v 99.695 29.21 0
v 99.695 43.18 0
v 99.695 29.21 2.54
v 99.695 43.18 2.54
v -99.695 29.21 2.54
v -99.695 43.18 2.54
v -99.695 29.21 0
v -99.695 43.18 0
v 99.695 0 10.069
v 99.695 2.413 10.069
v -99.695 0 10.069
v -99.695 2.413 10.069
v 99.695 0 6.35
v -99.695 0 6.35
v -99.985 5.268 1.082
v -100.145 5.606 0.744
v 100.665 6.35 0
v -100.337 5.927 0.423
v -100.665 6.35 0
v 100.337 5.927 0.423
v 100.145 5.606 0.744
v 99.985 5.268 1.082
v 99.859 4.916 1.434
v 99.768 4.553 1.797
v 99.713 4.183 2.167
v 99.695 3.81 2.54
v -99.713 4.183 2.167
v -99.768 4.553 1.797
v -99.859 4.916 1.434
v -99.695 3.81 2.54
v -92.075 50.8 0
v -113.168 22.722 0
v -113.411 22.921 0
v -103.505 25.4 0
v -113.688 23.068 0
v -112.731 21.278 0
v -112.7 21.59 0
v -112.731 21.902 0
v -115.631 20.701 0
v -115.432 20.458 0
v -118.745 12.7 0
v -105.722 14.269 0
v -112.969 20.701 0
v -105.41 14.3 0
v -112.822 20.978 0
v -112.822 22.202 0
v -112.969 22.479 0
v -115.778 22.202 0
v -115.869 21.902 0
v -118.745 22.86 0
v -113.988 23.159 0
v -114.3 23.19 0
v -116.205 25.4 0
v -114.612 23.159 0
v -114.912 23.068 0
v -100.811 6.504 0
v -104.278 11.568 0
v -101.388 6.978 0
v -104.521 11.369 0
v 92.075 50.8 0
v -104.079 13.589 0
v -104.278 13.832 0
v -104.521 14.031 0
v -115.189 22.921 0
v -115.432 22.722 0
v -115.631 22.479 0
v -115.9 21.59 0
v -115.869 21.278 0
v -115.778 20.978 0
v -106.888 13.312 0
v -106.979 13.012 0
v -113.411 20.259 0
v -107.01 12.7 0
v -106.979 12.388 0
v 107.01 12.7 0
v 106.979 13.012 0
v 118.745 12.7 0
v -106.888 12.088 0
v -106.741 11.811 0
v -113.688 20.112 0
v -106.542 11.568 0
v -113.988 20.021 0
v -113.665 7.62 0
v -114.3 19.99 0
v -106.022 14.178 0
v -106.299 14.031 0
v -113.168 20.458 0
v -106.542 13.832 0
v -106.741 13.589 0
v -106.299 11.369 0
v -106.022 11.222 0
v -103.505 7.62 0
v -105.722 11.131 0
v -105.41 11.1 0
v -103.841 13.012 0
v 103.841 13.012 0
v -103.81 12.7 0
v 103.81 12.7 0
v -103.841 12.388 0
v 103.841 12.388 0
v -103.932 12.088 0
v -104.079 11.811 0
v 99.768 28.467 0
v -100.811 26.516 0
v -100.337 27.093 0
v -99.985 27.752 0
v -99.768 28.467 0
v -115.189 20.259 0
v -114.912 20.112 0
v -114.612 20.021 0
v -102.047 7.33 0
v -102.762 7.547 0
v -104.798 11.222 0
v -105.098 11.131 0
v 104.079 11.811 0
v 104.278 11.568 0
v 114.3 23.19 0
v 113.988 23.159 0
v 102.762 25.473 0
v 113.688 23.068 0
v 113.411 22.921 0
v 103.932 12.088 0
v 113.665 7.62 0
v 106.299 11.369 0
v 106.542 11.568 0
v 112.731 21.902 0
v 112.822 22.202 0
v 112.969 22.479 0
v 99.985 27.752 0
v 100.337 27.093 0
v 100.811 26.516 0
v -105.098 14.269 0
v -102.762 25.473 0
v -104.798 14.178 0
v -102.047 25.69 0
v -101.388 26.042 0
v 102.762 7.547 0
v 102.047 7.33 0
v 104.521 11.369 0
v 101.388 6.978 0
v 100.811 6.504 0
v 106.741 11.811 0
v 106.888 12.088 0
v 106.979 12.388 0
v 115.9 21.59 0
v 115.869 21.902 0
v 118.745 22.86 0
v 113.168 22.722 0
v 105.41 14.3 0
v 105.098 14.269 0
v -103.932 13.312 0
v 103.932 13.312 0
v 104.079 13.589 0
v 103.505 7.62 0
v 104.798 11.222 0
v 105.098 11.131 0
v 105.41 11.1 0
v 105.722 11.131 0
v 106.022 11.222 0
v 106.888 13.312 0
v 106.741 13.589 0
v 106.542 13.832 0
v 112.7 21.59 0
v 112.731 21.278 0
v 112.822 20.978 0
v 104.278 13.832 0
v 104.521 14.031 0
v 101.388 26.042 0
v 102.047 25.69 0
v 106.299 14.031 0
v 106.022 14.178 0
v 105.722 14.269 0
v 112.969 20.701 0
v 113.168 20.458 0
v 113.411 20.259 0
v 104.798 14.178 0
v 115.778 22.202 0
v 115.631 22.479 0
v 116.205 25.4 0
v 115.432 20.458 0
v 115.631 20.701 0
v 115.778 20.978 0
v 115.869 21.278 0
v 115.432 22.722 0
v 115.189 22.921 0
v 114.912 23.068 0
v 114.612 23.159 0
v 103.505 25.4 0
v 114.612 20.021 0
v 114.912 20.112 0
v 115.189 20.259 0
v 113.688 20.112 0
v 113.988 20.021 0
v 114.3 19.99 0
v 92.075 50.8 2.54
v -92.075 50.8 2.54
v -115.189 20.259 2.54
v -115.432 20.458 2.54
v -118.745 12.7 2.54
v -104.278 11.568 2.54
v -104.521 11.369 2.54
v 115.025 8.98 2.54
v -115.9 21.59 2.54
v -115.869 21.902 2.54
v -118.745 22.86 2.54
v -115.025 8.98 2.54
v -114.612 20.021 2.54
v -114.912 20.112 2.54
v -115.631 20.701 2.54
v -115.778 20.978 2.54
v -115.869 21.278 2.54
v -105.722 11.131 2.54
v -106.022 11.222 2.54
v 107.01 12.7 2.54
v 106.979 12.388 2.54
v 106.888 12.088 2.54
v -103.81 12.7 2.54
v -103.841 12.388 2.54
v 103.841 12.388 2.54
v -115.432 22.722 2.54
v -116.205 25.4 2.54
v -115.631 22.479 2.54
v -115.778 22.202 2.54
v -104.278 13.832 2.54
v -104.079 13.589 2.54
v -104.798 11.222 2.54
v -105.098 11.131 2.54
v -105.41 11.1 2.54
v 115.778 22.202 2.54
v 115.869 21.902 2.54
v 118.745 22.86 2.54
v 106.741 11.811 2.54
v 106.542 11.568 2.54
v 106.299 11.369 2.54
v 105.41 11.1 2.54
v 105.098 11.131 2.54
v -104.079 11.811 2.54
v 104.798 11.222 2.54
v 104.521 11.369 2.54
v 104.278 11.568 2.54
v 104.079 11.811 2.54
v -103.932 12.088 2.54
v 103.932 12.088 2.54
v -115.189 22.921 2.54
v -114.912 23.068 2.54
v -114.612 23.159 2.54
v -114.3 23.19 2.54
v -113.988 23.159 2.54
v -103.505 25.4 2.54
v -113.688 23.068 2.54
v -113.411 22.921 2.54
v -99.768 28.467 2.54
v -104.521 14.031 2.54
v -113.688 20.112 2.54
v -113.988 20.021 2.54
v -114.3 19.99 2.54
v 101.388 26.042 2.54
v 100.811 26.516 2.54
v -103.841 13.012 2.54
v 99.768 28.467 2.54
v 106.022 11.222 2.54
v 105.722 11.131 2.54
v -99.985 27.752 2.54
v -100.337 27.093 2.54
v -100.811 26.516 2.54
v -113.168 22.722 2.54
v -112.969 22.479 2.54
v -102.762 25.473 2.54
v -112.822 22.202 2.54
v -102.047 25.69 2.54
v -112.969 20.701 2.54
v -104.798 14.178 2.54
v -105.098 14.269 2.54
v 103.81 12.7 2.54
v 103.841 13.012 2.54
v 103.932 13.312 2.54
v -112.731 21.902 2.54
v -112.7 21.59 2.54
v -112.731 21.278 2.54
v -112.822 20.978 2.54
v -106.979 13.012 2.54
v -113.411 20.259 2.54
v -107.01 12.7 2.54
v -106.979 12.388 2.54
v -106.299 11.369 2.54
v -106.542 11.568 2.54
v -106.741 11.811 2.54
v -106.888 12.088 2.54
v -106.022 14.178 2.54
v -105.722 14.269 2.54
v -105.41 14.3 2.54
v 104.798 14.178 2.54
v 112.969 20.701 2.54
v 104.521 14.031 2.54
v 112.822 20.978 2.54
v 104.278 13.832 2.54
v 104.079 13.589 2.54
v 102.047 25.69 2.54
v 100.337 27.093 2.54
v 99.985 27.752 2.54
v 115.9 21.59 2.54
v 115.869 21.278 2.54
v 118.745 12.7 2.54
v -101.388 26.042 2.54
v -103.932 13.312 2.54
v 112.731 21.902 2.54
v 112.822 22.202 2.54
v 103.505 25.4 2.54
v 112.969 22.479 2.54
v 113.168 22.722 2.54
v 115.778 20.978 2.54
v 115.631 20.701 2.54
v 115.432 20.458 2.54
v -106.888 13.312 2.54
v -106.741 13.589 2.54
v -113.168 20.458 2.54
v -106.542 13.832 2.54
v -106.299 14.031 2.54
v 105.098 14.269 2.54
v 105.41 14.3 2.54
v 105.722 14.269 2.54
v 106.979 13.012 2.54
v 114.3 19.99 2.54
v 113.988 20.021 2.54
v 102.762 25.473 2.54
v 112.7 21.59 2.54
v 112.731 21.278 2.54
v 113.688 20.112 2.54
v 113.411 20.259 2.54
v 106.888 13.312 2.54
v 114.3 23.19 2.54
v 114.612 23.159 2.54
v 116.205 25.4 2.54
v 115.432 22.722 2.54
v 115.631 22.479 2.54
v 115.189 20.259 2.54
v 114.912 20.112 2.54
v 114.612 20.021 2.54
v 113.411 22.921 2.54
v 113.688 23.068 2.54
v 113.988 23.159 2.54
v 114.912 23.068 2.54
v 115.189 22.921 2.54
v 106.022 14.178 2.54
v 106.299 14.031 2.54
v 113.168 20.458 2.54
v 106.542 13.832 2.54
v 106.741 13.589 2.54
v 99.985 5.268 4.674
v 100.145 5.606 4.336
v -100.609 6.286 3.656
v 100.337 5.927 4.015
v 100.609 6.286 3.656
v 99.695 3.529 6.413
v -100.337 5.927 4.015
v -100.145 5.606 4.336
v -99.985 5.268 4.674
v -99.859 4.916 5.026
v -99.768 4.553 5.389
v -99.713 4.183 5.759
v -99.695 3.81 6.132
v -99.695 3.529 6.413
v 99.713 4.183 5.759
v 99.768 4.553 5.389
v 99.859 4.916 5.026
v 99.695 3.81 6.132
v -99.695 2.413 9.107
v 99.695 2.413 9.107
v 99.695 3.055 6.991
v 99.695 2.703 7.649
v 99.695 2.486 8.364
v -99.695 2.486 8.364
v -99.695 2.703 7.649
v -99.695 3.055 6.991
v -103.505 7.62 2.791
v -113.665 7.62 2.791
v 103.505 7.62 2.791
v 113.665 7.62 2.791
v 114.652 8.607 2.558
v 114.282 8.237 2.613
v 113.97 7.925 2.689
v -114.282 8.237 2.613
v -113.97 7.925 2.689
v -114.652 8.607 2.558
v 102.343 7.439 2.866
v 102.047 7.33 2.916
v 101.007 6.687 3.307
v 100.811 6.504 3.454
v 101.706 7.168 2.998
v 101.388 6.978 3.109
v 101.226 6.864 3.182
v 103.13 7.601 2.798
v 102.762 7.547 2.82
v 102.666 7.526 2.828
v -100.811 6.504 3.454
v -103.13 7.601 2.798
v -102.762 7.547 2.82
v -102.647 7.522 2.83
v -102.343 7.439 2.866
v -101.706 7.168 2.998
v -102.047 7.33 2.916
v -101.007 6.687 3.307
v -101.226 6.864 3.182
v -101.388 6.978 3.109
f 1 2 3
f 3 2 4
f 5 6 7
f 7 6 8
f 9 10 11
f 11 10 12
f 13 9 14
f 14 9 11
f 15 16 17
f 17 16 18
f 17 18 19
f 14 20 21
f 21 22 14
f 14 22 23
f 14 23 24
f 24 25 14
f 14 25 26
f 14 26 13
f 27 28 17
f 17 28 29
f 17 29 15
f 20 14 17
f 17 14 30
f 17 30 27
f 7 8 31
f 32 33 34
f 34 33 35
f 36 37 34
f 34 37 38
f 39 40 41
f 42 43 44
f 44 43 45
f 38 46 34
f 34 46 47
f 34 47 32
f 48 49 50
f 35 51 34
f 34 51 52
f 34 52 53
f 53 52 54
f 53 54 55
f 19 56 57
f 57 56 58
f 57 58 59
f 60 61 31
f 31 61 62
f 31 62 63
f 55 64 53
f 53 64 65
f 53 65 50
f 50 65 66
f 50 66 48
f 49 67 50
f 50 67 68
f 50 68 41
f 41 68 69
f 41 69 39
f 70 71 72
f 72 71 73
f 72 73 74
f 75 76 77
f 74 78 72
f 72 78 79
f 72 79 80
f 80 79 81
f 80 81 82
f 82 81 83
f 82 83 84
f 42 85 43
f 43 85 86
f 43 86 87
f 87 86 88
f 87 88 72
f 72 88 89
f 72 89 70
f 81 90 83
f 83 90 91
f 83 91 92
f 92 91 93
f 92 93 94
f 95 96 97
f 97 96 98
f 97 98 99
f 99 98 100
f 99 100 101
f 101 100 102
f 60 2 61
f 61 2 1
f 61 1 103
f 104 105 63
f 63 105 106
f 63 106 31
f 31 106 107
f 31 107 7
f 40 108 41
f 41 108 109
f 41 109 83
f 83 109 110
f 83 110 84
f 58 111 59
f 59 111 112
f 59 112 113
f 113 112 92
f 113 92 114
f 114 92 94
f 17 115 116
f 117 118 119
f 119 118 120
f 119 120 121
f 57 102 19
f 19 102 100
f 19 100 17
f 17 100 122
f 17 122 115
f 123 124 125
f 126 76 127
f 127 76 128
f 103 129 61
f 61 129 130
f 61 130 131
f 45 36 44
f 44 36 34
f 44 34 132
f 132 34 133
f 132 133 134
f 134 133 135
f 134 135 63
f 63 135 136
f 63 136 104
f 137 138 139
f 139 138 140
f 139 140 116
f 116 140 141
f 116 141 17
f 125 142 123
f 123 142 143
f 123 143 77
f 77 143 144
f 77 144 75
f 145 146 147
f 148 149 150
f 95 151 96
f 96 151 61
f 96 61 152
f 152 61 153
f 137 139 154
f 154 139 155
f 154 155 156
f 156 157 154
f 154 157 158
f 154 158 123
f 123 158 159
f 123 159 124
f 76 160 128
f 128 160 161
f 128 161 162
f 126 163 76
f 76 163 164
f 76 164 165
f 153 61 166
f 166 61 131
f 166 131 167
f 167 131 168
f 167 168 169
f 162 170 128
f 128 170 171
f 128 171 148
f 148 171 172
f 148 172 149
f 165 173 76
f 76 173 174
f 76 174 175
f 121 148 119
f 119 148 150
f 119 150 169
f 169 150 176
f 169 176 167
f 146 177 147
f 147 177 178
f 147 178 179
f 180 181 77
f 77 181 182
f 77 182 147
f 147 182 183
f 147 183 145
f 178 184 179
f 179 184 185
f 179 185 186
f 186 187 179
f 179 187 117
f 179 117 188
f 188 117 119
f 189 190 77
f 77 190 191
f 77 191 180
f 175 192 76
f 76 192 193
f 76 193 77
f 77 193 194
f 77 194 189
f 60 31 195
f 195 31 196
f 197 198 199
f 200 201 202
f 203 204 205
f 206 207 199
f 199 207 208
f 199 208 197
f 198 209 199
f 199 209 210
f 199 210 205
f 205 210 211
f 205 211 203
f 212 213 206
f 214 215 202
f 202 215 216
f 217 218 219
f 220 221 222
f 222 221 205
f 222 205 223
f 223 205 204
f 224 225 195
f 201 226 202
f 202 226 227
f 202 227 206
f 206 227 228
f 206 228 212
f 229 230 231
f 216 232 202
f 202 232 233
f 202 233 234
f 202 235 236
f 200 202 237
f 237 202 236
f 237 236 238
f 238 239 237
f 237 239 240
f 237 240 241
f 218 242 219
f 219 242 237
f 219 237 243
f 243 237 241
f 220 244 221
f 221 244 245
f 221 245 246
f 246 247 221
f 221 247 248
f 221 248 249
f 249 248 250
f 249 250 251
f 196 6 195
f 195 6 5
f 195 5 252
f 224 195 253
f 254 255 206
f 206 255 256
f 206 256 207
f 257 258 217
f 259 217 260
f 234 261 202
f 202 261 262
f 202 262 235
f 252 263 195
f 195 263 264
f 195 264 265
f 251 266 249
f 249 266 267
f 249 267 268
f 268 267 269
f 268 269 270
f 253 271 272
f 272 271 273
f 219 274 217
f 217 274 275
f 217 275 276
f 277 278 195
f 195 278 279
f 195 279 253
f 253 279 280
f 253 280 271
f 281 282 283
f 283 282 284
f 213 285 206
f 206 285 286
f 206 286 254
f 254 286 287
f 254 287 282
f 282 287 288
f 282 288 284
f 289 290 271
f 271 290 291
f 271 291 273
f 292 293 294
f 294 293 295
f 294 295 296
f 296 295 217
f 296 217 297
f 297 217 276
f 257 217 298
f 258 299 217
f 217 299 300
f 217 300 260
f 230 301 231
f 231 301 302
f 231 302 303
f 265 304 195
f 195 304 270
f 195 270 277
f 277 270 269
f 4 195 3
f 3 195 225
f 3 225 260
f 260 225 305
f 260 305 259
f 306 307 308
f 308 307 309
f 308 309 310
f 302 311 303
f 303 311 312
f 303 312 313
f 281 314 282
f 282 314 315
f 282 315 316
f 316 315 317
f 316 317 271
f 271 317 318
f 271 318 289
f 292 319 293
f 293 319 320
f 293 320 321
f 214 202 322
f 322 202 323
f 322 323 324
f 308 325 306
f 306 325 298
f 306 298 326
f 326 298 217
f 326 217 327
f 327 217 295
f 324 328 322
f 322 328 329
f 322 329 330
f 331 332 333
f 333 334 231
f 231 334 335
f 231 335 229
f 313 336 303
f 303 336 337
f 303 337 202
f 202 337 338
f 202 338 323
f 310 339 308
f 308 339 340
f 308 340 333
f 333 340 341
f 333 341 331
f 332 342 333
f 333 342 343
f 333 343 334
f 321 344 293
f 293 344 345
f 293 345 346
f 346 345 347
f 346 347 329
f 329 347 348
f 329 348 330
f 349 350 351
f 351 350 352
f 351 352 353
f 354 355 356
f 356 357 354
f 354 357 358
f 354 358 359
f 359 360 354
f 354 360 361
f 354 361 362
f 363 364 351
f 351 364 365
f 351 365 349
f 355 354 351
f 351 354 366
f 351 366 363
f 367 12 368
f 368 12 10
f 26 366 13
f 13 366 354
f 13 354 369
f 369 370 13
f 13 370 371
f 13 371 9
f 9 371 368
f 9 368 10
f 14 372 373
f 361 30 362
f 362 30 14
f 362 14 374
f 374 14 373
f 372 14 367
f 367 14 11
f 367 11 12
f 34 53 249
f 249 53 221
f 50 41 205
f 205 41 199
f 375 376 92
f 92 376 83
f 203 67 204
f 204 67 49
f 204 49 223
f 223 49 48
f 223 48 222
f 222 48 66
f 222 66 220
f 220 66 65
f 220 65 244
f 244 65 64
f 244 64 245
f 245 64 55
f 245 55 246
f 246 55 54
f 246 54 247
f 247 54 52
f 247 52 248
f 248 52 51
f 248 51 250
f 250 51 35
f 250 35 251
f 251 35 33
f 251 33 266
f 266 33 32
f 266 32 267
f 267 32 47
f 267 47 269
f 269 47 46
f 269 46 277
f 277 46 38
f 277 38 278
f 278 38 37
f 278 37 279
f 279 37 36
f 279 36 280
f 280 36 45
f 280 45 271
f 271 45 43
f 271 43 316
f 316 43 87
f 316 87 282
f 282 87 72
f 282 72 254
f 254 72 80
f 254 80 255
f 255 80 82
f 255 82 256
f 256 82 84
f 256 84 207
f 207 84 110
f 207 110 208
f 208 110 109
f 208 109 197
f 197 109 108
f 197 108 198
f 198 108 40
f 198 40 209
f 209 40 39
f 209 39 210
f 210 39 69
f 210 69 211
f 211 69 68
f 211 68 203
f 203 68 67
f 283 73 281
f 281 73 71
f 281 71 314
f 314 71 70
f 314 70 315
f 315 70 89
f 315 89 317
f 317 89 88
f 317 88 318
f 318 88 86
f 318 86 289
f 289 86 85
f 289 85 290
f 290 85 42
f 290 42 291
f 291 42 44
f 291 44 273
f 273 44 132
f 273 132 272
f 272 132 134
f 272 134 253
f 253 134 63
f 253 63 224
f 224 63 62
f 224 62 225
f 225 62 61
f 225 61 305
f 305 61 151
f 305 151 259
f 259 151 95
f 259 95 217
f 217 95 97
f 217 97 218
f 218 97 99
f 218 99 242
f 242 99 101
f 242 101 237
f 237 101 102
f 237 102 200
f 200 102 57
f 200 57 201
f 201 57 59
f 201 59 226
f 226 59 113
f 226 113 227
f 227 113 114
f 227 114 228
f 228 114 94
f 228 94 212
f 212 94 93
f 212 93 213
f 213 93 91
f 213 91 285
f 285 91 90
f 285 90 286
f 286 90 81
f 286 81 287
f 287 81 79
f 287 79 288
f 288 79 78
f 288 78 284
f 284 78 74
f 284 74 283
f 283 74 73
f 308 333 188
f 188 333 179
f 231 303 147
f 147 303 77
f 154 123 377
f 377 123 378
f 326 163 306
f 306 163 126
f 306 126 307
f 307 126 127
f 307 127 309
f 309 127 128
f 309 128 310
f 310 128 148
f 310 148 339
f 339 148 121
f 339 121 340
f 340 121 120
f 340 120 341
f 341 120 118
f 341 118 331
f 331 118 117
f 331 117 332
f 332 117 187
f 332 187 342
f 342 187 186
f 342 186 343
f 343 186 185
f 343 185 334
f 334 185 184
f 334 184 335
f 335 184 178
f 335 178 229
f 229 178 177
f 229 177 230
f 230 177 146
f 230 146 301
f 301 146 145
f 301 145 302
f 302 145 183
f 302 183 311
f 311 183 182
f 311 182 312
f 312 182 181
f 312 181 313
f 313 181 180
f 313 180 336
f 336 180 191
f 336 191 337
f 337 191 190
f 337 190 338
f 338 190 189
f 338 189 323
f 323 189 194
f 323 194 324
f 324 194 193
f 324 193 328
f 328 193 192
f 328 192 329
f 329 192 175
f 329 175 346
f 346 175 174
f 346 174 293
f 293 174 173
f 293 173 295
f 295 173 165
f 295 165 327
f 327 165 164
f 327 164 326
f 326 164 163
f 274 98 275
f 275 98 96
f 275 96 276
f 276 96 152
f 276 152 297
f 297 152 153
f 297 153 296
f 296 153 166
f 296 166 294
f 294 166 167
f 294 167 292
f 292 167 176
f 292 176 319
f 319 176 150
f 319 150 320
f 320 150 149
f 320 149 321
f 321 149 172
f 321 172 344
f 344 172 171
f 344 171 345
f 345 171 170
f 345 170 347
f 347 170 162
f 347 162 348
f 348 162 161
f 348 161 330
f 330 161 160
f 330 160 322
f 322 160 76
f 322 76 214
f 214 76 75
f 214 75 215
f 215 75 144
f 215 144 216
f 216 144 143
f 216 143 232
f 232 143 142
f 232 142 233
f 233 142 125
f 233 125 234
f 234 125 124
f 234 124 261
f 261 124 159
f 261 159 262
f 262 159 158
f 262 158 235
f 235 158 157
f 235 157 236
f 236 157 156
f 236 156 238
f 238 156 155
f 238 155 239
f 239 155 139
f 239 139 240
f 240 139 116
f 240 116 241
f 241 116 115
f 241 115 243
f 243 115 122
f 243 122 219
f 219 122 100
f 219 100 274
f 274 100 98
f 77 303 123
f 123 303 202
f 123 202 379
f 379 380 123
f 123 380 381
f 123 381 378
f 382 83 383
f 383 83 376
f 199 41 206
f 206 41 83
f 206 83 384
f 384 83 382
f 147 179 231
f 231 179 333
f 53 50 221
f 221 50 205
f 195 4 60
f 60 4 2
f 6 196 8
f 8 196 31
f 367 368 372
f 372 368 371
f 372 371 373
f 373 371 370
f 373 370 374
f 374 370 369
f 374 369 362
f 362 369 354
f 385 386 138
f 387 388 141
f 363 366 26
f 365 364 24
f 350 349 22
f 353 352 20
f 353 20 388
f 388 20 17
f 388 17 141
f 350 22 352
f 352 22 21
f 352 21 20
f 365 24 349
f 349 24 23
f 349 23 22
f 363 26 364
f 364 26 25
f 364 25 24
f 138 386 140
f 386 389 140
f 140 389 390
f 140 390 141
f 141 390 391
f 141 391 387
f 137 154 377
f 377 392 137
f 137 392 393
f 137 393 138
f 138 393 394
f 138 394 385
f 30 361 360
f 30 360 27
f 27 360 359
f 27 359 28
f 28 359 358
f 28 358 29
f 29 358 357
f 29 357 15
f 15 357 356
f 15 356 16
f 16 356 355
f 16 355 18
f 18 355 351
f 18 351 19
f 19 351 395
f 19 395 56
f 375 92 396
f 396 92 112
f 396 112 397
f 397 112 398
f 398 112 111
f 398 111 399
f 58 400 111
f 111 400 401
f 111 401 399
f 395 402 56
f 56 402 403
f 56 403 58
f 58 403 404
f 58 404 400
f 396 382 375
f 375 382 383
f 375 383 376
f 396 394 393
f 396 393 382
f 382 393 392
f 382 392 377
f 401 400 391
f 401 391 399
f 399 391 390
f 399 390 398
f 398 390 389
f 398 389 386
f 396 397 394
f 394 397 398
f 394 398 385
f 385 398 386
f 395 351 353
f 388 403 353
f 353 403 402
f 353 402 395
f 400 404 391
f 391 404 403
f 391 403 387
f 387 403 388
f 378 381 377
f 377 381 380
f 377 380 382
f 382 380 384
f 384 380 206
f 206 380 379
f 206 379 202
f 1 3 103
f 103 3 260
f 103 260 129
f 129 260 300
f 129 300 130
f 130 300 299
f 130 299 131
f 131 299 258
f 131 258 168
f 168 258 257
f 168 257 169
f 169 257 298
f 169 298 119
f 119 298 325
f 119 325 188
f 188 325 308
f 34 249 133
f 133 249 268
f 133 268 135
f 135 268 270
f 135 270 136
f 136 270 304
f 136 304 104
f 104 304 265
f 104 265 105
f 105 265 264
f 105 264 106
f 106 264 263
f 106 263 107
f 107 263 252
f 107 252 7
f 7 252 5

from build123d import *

# Parameters (mm, degrees)
BOSS_EXTRUDE1_DEPTH  = 99.695
SKETCH3_W            = 19.05
SKETCH3_H            = 17.78
SKETCH3_R            = 1.6002
MOUNTING_PLATE_DEPTH = 2.54
CHAMFER1_SIZE        = 5.08
CHAMFER2_SIZE        = 2.54
CHAMFER3_SIZE        = 7.62
FILLET1_R            = 3.81


with BuildPart() as part:
    # Sketch2 → Boss-Extrude1 (new, symmetric)
    with BuildSketch(Plane(origin=(0, 0, 0), x_dir=(0, 0, -1), z_dir=(1, 0, 0))):
        Polygon((-10.069102448, 0), (-6.35, 0), (0, 6.35), (0, 50.8), (-2.54, 50.8), (-2.54, 7.402102448), (-7.529102448, 2.413), (-10.069102448, 2.413), align=None)
    extrude(amount=BOSS_EXTRUDE1_DEPTH, both=True)

    # Sketch3 → Mounting-Plate (add)
    with BuildSketch(Plane.XY):
        with Locations((-109.22, 16.51)):
            Rectangle(SKETCH3_W, SKETCH3_H)
        with Locations(Location((-114.3, 21.59, 0), (0, 0, 90))):
            Circle(SKETCH3_R, mode=Mode.SUBTRACT)
        with Locations(Location((-105.41, 12.7, 0), (0, 0, 90))):
            Circle(SKETCH3_R, mode=Mode.SUBTRACT)
    mounting_plate = extrude(amount=MOUNTING_PLATE_DEPTH)

    # Mirror1: Mounting-Plate across plane
    add(mounting_plate.mirror(Plane(origin=(0, 0, 0), x_dir=(0, 0, 1), z_dir=(1, 0, 0))))

    # Chamfer1
    chamfer1_edges = [part.edges().sort_by_distance(p)[0] for p in [
        (-118.745, 7.62, 1.27),
        (118.745, 7.62, 1.27),
    ]]
    chamfer(chamfer1_edges, length=CHAMFER1_SIZE)

    # Chamfer2
    chamfer2_edges = [part.edges().sort_by_distance(p)[0] for p in [
        (-118.745, 25.4, 1.27),
        (118.745, 25.4, 1.27),
    ]]
    chamfer(chamfer2_edges, length=CHAMFER2_SIZE)

    # Chamfer3
    chamfer3_edges = [part.edges().sort_by_distance(p)[0] for p in [
        (99.695, 50.8, 1.27),
        (-99.695, 50.8, 1.27),
    ]]
    chamfer(chamfer3_edges, length=CHAMFER3_SIZE)

    # Fillet1
    fillet1_edges = [part.edges().sort_by_distance(p)[0] for p in [
        (0, 7.402102448, 2.54),
    ]]
    fillet(fillet1_edges, radius=FILLET1_R)
    fillet1_2_edges = [part.edges().sort_by_distance(p)[0] for p in [
        (-99.695, 25.4, 1.27),
    ]]
    fillet(fillet1_2_edges, radius=FILLET1_R)
    fillet1_3_edges = [part.edges().sort_by_distance(p)[0] for p in [
        (99.695, 25.4, 1.27),
    ]]
    fillet(fillet1_3_edges, radius=FILLET1_R)
    fillet1_4_edges = [part.edges().sort_by_distance(p)[0] for p in [
        (-99.695, 7.62, 1.395547606),
    ]]
    fillet(fillet1_4_edges, radius=FILLET1_R)
    fillet1_5_edges = [part.edges().sort_by_distance(p)[0] for p in [
        (0, 2.413, 7.529102448),
    ]]
    fillet(fillet1_5_edges, radius=FILLET1_R)
    fillet1_6_edges = [part.edges().sort_by_distance(p)[0] for p in [
        (99.695, 7.62, 1.395547606),
    ]]
    fillet(fillet1_6_edges, radius=FILLET1_R)


solid = part.part
